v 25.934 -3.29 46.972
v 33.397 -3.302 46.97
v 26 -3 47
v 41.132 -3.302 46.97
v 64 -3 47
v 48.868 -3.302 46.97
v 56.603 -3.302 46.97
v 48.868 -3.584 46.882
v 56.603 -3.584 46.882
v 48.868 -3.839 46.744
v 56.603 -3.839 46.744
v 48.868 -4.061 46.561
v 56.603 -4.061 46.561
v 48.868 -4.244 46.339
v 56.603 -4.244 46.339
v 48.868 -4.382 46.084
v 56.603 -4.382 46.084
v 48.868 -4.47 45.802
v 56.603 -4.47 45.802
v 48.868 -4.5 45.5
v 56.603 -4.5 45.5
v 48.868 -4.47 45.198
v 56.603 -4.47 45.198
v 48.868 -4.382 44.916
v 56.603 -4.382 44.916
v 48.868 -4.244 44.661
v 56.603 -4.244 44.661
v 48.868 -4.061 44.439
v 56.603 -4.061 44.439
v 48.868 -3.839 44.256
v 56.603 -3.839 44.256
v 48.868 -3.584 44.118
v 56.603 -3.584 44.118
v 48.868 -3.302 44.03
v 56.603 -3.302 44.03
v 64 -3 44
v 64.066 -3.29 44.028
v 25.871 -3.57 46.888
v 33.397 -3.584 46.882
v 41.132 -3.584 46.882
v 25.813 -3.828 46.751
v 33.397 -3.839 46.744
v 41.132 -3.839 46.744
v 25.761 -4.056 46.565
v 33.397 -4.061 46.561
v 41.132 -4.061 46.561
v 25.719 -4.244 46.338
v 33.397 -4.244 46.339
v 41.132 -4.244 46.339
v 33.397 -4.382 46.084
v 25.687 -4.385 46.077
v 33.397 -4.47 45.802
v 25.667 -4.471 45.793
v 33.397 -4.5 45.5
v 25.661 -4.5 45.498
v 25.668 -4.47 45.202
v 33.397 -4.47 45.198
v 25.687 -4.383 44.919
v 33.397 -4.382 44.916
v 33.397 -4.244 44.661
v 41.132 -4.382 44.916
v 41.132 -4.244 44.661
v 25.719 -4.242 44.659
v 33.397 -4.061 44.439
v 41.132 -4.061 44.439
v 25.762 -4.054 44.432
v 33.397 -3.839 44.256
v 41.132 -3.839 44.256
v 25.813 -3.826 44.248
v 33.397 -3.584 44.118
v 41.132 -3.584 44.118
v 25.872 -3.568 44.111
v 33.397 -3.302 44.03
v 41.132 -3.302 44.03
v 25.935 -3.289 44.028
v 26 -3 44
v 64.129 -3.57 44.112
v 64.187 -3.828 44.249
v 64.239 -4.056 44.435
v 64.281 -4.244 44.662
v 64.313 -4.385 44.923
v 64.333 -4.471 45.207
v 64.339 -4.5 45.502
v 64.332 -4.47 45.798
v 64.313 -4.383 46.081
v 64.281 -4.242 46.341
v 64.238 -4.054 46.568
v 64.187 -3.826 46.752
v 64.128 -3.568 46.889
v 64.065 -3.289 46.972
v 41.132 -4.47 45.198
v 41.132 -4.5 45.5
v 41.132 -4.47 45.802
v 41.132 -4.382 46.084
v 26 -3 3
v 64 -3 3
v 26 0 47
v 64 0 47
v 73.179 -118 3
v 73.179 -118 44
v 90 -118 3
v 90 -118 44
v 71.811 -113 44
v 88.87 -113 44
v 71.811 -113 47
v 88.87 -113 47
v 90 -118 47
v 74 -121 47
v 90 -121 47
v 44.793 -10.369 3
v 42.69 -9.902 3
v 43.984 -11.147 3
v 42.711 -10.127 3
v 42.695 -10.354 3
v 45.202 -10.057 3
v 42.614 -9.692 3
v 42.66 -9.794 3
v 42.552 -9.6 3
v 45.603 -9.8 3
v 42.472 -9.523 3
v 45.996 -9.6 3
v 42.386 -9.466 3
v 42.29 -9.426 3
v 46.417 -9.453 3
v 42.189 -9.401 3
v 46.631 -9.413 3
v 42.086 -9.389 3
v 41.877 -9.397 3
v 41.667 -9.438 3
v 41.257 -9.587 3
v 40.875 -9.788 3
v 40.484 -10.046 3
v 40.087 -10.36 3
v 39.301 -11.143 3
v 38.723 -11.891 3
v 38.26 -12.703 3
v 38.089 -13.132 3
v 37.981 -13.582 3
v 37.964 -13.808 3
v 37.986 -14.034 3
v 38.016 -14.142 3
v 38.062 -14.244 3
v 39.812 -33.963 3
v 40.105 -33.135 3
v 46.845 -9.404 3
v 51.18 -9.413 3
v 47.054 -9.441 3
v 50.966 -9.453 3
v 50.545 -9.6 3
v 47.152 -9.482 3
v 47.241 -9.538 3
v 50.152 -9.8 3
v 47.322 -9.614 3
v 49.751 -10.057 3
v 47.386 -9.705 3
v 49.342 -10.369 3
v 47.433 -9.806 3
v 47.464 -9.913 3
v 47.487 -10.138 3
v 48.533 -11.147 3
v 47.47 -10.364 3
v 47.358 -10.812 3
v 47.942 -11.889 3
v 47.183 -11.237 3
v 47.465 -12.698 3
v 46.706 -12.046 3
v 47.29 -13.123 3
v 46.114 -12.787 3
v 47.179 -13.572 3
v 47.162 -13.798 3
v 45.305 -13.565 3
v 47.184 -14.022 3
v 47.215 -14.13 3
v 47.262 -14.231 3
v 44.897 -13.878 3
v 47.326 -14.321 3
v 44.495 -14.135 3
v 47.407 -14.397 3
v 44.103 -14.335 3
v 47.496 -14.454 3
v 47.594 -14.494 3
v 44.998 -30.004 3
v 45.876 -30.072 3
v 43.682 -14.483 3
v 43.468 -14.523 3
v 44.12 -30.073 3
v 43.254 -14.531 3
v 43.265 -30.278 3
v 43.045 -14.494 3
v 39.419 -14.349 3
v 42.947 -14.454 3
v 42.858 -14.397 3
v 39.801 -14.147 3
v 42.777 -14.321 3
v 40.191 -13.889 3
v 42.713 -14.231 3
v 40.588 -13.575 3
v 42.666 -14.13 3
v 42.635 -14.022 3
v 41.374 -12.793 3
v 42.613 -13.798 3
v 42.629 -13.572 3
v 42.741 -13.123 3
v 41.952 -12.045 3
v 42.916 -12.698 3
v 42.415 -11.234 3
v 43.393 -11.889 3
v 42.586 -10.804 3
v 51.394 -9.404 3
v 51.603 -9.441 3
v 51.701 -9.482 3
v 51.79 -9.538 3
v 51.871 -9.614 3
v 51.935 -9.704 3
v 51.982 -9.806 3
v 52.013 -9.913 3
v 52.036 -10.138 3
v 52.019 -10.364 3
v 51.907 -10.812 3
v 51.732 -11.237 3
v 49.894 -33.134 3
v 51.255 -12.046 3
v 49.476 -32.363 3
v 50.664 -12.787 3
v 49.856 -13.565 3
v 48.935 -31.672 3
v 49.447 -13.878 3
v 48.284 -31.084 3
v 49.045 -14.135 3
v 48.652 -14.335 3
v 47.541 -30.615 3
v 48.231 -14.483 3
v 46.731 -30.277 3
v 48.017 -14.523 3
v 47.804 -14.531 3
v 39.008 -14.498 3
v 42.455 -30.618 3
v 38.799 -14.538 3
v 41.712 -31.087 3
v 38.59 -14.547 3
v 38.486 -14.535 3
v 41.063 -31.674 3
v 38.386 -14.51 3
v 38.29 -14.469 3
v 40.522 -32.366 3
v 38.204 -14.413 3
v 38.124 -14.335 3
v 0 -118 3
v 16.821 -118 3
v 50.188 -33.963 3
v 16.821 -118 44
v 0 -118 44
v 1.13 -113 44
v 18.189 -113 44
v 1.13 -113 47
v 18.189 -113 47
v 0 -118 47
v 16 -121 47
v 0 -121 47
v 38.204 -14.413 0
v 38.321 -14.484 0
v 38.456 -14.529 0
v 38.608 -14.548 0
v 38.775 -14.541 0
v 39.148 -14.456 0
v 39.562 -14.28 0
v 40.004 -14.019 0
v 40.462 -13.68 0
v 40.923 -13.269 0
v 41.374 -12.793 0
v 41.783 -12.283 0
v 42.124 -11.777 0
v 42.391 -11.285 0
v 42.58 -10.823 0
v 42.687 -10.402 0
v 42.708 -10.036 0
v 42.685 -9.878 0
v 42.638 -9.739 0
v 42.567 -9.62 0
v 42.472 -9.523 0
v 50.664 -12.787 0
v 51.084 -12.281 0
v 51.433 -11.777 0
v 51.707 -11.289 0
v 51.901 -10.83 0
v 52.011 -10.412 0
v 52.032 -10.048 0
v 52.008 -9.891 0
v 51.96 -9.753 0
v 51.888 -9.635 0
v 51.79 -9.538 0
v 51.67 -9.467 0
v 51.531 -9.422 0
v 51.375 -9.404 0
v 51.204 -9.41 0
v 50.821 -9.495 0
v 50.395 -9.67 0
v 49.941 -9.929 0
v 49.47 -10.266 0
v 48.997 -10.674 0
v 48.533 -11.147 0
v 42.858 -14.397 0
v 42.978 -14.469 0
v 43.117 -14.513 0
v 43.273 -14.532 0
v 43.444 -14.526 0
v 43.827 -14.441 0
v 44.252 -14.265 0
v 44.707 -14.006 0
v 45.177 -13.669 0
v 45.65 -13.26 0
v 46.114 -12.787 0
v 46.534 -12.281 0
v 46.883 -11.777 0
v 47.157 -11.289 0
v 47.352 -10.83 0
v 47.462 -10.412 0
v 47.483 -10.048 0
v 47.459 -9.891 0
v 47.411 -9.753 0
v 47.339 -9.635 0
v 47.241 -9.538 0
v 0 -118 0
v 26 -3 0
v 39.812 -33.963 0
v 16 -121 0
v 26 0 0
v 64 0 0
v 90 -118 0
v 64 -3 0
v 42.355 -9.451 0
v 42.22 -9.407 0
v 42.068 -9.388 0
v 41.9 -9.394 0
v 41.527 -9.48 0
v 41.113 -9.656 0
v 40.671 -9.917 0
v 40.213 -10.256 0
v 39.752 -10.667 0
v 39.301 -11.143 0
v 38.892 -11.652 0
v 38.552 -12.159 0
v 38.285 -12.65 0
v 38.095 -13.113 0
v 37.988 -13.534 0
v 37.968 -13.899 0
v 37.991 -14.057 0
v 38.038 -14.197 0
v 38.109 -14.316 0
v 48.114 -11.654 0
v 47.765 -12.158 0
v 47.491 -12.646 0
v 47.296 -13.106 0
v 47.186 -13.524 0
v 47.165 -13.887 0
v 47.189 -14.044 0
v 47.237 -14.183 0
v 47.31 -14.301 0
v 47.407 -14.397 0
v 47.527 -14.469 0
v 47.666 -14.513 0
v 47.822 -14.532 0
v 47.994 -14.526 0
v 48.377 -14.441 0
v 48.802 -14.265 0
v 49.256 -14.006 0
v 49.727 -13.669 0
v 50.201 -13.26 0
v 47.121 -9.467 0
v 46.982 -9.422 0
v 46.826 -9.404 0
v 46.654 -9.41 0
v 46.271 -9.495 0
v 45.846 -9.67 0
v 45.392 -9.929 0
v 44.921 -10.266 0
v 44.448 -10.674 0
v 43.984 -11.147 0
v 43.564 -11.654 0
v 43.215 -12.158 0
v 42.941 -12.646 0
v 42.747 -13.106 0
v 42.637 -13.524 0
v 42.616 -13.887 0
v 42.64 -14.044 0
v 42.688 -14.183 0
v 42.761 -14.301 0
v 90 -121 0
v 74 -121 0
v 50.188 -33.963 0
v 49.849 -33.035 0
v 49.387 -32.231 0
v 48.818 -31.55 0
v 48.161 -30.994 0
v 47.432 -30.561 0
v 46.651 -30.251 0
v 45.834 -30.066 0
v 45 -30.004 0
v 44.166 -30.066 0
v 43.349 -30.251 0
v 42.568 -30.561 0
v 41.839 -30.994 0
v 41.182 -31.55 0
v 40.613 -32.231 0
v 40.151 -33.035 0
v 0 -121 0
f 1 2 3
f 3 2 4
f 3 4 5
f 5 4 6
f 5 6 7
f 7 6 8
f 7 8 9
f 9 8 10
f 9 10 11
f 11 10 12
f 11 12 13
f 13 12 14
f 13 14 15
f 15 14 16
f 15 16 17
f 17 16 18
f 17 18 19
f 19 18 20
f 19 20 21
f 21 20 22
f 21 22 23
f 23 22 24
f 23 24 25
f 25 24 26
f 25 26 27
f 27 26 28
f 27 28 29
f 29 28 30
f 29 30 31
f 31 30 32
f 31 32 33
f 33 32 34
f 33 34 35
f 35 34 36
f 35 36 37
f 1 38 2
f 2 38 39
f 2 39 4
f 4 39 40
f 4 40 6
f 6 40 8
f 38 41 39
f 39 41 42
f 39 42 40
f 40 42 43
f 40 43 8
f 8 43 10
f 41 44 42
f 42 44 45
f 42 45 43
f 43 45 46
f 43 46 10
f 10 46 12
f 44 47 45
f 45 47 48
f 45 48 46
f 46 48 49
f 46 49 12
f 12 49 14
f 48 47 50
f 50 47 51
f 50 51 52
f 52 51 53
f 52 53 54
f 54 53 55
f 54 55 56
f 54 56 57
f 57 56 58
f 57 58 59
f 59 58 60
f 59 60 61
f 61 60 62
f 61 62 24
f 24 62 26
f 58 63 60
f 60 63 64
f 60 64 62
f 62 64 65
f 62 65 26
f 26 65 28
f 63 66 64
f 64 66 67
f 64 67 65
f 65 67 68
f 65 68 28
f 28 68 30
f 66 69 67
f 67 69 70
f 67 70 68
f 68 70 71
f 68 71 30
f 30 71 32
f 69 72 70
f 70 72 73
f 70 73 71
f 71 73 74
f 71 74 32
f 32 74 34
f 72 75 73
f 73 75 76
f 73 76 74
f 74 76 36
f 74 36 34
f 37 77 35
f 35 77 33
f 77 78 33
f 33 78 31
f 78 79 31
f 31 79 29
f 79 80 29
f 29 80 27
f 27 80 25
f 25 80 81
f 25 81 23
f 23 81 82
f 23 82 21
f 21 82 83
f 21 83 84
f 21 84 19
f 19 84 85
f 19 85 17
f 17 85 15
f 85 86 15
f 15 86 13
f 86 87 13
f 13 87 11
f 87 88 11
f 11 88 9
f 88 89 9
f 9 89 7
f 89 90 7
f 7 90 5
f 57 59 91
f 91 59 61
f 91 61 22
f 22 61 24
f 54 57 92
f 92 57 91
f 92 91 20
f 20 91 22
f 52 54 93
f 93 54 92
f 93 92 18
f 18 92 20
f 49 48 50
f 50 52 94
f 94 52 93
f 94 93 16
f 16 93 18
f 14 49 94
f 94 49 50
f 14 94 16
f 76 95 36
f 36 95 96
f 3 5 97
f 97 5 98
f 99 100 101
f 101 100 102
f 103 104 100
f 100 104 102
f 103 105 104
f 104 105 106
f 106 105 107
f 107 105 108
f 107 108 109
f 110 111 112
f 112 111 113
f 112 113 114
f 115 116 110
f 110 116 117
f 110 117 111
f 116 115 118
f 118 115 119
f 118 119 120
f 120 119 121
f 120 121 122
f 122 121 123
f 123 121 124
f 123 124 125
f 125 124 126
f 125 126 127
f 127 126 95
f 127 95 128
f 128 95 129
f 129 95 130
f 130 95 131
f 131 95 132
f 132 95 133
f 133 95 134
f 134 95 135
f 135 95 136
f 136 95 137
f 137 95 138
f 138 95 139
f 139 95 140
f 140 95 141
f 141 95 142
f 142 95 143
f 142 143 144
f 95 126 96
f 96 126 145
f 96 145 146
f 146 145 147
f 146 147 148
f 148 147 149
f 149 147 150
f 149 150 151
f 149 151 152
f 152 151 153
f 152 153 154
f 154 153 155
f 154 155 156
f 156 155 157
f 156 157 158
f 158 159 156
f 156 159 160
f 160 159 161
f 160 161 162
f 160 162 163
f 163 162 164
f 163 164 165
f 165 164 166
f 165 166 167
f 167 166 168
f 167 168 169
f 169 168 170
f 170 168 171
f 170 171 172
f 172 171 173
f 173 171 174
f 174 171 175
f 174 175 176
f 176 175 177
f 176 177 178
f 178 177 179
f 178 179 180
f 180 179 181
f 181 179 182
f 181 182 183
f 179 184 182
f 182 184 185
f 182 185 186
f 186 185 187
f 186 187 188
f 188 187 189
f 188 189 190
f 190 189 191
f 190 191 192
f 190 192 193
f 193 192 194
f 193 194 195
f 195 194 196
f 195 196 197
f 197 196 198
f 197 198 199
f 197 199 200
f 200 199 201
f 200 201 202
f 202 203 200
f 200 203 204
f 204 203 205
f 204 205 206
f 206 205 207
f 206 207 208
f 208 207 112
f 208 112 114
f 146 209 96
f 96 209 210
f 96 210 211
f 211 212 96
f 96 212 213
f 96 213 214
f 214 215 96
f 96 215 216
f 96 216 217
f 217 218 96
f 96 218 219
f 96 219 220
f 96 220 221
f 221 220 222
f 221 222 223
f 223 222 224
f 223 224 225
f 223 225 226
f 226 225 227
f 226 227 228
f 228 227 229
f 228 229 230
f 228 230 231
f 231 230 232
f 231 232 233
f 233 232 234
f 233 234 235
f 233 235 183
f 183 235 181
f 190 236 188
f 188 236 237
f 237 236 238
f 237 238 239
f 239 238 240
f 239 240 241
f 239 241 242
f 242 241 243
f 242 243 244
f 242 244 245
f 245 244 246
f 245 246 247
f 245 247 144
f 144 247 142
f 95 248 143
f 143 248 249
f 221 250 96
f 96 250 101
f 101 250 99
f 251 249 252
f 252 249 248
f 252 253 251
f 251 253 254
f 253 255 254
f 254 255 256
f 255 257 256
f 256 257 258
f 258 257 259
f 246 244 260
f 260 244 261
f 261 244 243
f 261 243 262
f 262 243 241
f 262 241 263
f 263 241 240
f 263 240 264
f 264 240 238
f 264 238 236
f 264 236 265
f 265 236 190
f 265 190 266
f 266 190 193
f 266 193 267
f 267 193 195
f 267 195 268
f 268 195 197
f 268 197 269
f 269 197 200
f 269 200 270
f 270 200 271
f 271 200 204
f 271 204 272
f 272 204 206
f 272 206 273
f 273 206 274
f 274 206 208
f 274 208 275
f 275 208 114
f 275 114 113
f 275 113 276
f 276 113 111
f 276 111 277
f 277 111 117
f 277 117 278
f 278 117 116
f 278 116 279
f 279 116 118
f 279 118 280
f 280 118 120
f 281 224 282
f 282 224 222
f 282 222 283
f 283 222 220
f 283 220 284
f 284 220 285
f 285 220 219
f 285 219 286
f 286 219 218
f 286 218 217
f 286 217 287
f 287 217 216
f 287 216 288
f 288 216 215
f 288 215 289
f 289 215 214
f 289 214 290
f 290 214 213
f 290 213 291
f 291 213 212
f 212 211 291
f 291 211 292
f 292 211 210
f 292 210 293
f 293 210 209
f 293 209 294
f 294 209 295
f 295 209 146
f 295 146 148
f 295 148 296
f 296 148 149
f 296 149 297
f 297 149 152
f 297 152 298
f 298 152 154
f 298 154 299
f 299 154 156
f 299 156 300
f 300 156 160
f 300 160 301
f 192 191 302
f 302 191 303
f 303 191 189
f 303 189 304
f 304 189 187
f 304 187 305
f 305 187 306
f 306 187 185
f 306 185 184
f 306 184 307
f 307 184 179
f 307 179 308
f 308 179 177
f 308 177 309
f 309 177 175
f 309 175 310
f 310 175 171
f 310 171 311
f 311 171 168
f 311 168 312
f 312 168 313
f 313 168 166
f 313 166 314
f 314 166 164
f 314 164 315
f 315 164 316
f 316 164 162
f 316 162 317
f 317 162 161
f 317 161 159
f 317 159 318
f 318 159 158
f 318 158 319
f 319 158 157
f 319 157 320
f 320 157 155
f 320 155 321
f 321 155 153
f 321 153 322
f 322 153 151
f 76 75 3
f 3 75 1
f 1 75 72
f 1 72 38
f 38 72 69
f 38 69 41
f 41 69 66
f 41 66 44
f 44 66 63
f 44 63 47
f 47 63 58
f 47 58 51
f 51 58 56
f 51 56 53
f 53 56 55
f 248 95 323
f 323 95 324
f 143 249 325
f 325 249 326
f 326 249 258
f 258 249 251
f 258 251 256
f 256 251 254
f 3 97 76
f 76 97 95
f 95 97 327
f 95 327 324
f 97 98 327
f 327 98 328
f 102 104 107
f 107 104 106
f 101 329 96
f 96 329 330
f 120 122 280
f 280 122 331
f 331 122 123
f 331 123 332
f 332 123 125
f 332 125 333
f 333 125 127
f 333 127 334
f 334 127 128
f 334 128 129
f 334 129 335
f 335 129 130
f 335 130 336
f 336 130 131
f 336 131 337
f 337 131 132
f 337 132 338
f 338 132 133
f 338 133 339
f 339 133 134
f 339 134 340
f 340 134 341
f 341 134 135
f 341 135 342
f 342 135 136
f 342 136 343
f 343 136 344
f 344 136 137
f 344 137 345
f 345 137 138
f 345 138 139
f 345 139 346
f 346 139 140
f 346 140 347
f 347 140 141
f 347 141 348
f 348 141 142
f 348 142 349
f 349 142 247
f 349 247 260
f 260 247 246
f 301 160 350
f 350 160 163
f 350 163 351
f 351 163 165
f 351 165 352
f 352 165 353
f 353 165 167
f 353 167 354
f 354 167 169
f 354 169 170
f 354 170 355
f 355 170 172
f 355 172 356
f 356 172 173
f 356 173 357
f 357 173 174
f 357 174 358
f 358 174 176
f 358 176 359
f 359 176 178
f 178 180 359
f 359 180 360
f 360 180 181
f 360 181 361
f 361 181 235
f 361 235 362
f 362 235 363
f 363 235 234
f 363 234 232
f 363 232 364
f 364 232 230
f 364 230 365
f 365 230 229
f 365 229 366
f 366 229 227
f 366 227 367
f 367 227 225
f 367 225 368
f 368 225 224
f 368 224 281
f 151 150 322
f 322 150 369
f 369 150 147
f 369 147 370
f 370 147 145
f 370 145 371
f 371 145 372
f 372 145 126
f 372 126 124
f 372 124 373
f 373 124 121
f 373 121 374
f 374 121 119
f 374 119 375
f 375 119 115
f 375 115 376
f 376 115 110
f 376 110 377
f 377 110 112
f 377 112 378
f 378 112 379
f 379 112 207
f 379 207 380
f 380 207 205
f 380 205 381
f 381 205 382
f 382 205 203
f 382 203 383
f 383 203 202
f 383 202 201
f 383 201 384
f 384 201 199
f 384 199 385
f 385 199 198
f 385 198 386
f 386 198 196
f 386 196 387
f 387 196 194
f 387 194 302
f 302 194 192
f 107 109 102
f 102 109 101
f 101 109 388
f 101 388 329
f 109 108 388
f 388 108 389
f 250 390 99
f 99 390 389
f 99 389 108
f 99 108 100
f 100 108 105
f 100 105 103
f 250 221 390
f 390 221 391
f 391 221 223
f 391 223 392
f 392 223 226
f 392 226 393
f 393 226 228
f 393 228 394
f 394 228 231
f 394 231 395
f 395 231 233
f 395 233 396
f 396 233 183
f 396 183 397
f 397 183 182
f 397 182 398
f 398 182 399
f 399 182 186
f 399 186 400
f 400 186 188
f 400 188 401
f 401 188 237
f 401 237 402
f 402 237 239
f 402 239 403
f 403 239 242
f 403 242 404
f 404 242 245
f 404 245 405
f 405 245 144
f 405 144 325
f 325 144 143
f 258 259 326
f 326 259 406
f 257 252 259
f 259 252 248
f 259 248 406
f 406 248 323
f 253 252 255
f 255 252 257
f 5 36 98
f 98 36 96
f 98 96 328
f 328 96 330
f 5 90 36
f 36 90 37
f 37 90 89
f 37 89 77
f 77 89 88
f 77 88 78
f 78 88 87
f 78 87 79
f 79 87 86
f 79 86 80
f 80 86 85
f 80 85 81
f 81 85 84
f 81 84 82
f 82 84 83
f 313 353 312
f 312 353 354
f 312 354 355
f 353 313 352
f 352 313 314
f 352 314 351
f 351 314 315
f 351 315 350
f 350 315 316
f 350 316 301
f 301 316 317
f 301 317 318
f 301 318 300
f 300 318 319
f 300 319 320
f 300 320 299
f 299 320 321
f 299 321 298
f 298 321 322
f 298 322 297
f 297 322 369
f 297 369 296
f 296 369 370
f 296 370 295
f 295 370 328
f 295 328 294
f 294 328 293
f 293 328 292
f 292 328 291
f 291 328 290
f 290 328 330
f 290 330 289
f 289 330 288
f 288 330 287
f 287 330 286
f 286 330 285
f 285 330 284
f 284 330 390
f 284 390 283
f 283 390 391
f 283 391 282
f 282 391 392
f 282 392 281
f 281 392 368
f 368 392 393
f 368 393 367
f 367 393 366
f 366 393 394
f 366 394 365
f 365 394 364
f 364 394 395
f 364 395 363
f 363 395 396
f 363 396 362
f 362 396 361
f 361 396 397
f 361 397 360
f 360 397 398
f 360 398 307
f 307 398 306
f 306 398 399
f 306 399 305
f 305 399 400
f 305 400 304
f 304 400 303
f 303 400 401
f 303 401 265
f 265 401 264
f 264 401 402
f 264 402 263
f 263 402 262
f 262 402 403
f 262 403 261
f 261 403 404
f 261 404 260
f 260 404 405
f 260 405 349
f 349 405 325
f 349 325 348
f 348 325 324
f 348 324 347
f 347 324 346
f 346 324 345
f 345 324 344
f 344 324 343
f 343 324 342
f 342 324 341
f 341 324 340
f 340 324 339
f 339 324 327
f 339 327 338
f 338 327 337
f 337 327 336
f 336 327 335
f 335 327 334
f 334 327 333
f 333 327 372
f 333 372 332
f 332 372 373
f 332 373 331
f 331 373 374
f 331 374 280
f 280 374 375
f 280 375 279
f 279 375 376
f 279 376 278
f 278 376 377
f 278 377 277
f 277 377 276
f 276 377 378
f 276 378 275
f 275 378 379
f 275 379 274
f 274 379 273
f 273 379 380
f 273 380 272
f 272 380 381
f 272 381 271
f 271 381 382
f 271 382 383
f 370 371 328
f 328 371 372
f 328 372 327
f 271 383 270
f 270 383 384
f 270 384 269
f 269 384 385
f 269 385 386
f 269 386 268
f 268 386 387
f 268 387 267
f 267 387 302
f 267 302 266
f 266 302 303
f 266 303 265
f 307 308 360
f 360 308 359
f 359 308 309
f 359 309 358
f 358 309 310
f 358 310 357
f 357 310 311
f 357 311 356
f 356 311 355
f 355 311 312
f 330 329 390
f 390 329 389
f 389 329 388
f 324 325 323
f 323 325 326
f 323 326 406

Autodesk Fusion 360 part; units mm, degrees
sketch "Top" plane through (0, 0, 0) normal (0, 0, 1) x (1, 0, 0)
  spline S0 degree 3 poles (50.664, -12.787) (49.4535, -14.1293) (47.9947, -14.8503) (47.407, -14.3973) knots 0 0 0 0 1 1 1 1
  spline S1 degree 3 poles (47.407, -14.3973) (46.8193, -13.9442) (47.3242, -12.4896) (48.5334, -11.1472) knots 1 1 1 1 2 2 2 2
  spline S2 degree 3 poles (48.5334, -11.1472) (49.7439, -9.8062) (51.2028, -9.0852) (51.7904, -9.5383) knots 2 2 2 2 3 3 3 3
  spline S3 degree 3 poles (51.7904, -9.5383) (52.3782, -9.9914) (51.8732, -11.446) (50.664, -12.787) knots 3 3 3 3 4 4 4 4
  spline S4 degree 3 poles (42.858, -14.3973) (42.2703, -13.9442) (42.7739, -12.4896) (43.9844, -11.1472) knots 0 0 0 0 1 1 1 1
  spline S5 degree 3 poles (43.9844, -11.1472) (45.1949, -9.8062) (46.6523, -9.0852) (47.2415, -9.5383) knots 1 1 1 1 2 2 2 2
  spline S6 degree 3 poles (47.2415, -9.5383) (47.8292, -9.9914) (47.3242, -11.446) (46.1137, -12.787) knots 2 2 2 2 3 3 3 3
  spline S7 degree 3 poles (46.1137, -12.787) (44.9032, -14.1293) (43.4458, -14.8503) (42.858, -14.3973) knots 3 3 3 3 4 4 4 4
  spline S8 degree 3 poles (38.2038, -14.4127) (37.6302, -13.9568) (38.1225, -12.4924) (39.3008, -11.143) knots 0 0 0 0 1 1 1 1
  spline S9 degree 3 poles (39.3008, -11.143) (40.4791, -9.7922) (41.8986, -9.0684) (42.4723, -9.5229) knots 1 1 1 1 2 2 2 2
  spline S10 degree 3 poles (42.4723, -9.5229) (43.0446, -9.9788) (42.5536, -11.4432) (41.374, -12.7926) knots 2 2 2 2 3 3 3 3
  spline S11 degree 3 poles (41.374, -12.7926) (40.1957, -14.1434) (38.7761, -14.8672) (38.2038, -14.4127) knots 3 3 3 3 4 4 4 4
  line L0 (64, -3) -> (64, 0)
  line L1 (64, 0) -> (26, 0)
  line L2 (26, 0) -> (26, -3)
  line L3 (26, -3) -> (0, -118)
  line L4 (0, -118) -> (0, -121)
  line L5 (0, -121) -> (16, -121)
  line L6 (16, -121) -> (39.812, -33.9631)
  spline S12 degree 3 poles (39.812, -33.9631) (41.2562, -28.684) (48.7438, -28.684) (50.188, -33.9631) knots 7 7 7 7 8 8 8 8
  line L7 (50.188, -33.9631) -> (74, -121)
  line L8 (74, -121) -> (90, -121)
  line L9 (90, -121) -> (90, -118)
  line L10 (90, -118) -> (64, -3)
extrude "Extrude1" add sketch "Top" along normal blind 57
sketch "RightSideCut" plane through (0, 0, 0) normal (1, 0, 0) x (0, 1, 0)
  line L0 (-121, 57) -> (-121, 47)
  line L1 (-121, 47) -> (-113, 47)
  line L2 (-113, 47) -> (-113, 44)
  line L3 (-113, 44) -> (-118, 44)
  line L4 (-118, 44) -> (-118, 3)
  line L5 (-118, 3) -> (-3, 3)
  line L6 (-3, 3) -> (-3, 44)
  spline S0 degree 3 poles (-3, 44) (-3.8284, 44) (-4.5, 44.6716) (-4.5, 46.3285) (-3.8284, 47) (-3, 47) knots 7 7 7 7 8 8 9 9 9 9
  line L7 (-3, 47) -> (0, 47)
  line L8 (0, 47) -> (0, 57)
  line L9 (0, 57) -> (-121, 57)
extrude "Extrude2" cut sketch "RightSideCut" along normal blind 90
